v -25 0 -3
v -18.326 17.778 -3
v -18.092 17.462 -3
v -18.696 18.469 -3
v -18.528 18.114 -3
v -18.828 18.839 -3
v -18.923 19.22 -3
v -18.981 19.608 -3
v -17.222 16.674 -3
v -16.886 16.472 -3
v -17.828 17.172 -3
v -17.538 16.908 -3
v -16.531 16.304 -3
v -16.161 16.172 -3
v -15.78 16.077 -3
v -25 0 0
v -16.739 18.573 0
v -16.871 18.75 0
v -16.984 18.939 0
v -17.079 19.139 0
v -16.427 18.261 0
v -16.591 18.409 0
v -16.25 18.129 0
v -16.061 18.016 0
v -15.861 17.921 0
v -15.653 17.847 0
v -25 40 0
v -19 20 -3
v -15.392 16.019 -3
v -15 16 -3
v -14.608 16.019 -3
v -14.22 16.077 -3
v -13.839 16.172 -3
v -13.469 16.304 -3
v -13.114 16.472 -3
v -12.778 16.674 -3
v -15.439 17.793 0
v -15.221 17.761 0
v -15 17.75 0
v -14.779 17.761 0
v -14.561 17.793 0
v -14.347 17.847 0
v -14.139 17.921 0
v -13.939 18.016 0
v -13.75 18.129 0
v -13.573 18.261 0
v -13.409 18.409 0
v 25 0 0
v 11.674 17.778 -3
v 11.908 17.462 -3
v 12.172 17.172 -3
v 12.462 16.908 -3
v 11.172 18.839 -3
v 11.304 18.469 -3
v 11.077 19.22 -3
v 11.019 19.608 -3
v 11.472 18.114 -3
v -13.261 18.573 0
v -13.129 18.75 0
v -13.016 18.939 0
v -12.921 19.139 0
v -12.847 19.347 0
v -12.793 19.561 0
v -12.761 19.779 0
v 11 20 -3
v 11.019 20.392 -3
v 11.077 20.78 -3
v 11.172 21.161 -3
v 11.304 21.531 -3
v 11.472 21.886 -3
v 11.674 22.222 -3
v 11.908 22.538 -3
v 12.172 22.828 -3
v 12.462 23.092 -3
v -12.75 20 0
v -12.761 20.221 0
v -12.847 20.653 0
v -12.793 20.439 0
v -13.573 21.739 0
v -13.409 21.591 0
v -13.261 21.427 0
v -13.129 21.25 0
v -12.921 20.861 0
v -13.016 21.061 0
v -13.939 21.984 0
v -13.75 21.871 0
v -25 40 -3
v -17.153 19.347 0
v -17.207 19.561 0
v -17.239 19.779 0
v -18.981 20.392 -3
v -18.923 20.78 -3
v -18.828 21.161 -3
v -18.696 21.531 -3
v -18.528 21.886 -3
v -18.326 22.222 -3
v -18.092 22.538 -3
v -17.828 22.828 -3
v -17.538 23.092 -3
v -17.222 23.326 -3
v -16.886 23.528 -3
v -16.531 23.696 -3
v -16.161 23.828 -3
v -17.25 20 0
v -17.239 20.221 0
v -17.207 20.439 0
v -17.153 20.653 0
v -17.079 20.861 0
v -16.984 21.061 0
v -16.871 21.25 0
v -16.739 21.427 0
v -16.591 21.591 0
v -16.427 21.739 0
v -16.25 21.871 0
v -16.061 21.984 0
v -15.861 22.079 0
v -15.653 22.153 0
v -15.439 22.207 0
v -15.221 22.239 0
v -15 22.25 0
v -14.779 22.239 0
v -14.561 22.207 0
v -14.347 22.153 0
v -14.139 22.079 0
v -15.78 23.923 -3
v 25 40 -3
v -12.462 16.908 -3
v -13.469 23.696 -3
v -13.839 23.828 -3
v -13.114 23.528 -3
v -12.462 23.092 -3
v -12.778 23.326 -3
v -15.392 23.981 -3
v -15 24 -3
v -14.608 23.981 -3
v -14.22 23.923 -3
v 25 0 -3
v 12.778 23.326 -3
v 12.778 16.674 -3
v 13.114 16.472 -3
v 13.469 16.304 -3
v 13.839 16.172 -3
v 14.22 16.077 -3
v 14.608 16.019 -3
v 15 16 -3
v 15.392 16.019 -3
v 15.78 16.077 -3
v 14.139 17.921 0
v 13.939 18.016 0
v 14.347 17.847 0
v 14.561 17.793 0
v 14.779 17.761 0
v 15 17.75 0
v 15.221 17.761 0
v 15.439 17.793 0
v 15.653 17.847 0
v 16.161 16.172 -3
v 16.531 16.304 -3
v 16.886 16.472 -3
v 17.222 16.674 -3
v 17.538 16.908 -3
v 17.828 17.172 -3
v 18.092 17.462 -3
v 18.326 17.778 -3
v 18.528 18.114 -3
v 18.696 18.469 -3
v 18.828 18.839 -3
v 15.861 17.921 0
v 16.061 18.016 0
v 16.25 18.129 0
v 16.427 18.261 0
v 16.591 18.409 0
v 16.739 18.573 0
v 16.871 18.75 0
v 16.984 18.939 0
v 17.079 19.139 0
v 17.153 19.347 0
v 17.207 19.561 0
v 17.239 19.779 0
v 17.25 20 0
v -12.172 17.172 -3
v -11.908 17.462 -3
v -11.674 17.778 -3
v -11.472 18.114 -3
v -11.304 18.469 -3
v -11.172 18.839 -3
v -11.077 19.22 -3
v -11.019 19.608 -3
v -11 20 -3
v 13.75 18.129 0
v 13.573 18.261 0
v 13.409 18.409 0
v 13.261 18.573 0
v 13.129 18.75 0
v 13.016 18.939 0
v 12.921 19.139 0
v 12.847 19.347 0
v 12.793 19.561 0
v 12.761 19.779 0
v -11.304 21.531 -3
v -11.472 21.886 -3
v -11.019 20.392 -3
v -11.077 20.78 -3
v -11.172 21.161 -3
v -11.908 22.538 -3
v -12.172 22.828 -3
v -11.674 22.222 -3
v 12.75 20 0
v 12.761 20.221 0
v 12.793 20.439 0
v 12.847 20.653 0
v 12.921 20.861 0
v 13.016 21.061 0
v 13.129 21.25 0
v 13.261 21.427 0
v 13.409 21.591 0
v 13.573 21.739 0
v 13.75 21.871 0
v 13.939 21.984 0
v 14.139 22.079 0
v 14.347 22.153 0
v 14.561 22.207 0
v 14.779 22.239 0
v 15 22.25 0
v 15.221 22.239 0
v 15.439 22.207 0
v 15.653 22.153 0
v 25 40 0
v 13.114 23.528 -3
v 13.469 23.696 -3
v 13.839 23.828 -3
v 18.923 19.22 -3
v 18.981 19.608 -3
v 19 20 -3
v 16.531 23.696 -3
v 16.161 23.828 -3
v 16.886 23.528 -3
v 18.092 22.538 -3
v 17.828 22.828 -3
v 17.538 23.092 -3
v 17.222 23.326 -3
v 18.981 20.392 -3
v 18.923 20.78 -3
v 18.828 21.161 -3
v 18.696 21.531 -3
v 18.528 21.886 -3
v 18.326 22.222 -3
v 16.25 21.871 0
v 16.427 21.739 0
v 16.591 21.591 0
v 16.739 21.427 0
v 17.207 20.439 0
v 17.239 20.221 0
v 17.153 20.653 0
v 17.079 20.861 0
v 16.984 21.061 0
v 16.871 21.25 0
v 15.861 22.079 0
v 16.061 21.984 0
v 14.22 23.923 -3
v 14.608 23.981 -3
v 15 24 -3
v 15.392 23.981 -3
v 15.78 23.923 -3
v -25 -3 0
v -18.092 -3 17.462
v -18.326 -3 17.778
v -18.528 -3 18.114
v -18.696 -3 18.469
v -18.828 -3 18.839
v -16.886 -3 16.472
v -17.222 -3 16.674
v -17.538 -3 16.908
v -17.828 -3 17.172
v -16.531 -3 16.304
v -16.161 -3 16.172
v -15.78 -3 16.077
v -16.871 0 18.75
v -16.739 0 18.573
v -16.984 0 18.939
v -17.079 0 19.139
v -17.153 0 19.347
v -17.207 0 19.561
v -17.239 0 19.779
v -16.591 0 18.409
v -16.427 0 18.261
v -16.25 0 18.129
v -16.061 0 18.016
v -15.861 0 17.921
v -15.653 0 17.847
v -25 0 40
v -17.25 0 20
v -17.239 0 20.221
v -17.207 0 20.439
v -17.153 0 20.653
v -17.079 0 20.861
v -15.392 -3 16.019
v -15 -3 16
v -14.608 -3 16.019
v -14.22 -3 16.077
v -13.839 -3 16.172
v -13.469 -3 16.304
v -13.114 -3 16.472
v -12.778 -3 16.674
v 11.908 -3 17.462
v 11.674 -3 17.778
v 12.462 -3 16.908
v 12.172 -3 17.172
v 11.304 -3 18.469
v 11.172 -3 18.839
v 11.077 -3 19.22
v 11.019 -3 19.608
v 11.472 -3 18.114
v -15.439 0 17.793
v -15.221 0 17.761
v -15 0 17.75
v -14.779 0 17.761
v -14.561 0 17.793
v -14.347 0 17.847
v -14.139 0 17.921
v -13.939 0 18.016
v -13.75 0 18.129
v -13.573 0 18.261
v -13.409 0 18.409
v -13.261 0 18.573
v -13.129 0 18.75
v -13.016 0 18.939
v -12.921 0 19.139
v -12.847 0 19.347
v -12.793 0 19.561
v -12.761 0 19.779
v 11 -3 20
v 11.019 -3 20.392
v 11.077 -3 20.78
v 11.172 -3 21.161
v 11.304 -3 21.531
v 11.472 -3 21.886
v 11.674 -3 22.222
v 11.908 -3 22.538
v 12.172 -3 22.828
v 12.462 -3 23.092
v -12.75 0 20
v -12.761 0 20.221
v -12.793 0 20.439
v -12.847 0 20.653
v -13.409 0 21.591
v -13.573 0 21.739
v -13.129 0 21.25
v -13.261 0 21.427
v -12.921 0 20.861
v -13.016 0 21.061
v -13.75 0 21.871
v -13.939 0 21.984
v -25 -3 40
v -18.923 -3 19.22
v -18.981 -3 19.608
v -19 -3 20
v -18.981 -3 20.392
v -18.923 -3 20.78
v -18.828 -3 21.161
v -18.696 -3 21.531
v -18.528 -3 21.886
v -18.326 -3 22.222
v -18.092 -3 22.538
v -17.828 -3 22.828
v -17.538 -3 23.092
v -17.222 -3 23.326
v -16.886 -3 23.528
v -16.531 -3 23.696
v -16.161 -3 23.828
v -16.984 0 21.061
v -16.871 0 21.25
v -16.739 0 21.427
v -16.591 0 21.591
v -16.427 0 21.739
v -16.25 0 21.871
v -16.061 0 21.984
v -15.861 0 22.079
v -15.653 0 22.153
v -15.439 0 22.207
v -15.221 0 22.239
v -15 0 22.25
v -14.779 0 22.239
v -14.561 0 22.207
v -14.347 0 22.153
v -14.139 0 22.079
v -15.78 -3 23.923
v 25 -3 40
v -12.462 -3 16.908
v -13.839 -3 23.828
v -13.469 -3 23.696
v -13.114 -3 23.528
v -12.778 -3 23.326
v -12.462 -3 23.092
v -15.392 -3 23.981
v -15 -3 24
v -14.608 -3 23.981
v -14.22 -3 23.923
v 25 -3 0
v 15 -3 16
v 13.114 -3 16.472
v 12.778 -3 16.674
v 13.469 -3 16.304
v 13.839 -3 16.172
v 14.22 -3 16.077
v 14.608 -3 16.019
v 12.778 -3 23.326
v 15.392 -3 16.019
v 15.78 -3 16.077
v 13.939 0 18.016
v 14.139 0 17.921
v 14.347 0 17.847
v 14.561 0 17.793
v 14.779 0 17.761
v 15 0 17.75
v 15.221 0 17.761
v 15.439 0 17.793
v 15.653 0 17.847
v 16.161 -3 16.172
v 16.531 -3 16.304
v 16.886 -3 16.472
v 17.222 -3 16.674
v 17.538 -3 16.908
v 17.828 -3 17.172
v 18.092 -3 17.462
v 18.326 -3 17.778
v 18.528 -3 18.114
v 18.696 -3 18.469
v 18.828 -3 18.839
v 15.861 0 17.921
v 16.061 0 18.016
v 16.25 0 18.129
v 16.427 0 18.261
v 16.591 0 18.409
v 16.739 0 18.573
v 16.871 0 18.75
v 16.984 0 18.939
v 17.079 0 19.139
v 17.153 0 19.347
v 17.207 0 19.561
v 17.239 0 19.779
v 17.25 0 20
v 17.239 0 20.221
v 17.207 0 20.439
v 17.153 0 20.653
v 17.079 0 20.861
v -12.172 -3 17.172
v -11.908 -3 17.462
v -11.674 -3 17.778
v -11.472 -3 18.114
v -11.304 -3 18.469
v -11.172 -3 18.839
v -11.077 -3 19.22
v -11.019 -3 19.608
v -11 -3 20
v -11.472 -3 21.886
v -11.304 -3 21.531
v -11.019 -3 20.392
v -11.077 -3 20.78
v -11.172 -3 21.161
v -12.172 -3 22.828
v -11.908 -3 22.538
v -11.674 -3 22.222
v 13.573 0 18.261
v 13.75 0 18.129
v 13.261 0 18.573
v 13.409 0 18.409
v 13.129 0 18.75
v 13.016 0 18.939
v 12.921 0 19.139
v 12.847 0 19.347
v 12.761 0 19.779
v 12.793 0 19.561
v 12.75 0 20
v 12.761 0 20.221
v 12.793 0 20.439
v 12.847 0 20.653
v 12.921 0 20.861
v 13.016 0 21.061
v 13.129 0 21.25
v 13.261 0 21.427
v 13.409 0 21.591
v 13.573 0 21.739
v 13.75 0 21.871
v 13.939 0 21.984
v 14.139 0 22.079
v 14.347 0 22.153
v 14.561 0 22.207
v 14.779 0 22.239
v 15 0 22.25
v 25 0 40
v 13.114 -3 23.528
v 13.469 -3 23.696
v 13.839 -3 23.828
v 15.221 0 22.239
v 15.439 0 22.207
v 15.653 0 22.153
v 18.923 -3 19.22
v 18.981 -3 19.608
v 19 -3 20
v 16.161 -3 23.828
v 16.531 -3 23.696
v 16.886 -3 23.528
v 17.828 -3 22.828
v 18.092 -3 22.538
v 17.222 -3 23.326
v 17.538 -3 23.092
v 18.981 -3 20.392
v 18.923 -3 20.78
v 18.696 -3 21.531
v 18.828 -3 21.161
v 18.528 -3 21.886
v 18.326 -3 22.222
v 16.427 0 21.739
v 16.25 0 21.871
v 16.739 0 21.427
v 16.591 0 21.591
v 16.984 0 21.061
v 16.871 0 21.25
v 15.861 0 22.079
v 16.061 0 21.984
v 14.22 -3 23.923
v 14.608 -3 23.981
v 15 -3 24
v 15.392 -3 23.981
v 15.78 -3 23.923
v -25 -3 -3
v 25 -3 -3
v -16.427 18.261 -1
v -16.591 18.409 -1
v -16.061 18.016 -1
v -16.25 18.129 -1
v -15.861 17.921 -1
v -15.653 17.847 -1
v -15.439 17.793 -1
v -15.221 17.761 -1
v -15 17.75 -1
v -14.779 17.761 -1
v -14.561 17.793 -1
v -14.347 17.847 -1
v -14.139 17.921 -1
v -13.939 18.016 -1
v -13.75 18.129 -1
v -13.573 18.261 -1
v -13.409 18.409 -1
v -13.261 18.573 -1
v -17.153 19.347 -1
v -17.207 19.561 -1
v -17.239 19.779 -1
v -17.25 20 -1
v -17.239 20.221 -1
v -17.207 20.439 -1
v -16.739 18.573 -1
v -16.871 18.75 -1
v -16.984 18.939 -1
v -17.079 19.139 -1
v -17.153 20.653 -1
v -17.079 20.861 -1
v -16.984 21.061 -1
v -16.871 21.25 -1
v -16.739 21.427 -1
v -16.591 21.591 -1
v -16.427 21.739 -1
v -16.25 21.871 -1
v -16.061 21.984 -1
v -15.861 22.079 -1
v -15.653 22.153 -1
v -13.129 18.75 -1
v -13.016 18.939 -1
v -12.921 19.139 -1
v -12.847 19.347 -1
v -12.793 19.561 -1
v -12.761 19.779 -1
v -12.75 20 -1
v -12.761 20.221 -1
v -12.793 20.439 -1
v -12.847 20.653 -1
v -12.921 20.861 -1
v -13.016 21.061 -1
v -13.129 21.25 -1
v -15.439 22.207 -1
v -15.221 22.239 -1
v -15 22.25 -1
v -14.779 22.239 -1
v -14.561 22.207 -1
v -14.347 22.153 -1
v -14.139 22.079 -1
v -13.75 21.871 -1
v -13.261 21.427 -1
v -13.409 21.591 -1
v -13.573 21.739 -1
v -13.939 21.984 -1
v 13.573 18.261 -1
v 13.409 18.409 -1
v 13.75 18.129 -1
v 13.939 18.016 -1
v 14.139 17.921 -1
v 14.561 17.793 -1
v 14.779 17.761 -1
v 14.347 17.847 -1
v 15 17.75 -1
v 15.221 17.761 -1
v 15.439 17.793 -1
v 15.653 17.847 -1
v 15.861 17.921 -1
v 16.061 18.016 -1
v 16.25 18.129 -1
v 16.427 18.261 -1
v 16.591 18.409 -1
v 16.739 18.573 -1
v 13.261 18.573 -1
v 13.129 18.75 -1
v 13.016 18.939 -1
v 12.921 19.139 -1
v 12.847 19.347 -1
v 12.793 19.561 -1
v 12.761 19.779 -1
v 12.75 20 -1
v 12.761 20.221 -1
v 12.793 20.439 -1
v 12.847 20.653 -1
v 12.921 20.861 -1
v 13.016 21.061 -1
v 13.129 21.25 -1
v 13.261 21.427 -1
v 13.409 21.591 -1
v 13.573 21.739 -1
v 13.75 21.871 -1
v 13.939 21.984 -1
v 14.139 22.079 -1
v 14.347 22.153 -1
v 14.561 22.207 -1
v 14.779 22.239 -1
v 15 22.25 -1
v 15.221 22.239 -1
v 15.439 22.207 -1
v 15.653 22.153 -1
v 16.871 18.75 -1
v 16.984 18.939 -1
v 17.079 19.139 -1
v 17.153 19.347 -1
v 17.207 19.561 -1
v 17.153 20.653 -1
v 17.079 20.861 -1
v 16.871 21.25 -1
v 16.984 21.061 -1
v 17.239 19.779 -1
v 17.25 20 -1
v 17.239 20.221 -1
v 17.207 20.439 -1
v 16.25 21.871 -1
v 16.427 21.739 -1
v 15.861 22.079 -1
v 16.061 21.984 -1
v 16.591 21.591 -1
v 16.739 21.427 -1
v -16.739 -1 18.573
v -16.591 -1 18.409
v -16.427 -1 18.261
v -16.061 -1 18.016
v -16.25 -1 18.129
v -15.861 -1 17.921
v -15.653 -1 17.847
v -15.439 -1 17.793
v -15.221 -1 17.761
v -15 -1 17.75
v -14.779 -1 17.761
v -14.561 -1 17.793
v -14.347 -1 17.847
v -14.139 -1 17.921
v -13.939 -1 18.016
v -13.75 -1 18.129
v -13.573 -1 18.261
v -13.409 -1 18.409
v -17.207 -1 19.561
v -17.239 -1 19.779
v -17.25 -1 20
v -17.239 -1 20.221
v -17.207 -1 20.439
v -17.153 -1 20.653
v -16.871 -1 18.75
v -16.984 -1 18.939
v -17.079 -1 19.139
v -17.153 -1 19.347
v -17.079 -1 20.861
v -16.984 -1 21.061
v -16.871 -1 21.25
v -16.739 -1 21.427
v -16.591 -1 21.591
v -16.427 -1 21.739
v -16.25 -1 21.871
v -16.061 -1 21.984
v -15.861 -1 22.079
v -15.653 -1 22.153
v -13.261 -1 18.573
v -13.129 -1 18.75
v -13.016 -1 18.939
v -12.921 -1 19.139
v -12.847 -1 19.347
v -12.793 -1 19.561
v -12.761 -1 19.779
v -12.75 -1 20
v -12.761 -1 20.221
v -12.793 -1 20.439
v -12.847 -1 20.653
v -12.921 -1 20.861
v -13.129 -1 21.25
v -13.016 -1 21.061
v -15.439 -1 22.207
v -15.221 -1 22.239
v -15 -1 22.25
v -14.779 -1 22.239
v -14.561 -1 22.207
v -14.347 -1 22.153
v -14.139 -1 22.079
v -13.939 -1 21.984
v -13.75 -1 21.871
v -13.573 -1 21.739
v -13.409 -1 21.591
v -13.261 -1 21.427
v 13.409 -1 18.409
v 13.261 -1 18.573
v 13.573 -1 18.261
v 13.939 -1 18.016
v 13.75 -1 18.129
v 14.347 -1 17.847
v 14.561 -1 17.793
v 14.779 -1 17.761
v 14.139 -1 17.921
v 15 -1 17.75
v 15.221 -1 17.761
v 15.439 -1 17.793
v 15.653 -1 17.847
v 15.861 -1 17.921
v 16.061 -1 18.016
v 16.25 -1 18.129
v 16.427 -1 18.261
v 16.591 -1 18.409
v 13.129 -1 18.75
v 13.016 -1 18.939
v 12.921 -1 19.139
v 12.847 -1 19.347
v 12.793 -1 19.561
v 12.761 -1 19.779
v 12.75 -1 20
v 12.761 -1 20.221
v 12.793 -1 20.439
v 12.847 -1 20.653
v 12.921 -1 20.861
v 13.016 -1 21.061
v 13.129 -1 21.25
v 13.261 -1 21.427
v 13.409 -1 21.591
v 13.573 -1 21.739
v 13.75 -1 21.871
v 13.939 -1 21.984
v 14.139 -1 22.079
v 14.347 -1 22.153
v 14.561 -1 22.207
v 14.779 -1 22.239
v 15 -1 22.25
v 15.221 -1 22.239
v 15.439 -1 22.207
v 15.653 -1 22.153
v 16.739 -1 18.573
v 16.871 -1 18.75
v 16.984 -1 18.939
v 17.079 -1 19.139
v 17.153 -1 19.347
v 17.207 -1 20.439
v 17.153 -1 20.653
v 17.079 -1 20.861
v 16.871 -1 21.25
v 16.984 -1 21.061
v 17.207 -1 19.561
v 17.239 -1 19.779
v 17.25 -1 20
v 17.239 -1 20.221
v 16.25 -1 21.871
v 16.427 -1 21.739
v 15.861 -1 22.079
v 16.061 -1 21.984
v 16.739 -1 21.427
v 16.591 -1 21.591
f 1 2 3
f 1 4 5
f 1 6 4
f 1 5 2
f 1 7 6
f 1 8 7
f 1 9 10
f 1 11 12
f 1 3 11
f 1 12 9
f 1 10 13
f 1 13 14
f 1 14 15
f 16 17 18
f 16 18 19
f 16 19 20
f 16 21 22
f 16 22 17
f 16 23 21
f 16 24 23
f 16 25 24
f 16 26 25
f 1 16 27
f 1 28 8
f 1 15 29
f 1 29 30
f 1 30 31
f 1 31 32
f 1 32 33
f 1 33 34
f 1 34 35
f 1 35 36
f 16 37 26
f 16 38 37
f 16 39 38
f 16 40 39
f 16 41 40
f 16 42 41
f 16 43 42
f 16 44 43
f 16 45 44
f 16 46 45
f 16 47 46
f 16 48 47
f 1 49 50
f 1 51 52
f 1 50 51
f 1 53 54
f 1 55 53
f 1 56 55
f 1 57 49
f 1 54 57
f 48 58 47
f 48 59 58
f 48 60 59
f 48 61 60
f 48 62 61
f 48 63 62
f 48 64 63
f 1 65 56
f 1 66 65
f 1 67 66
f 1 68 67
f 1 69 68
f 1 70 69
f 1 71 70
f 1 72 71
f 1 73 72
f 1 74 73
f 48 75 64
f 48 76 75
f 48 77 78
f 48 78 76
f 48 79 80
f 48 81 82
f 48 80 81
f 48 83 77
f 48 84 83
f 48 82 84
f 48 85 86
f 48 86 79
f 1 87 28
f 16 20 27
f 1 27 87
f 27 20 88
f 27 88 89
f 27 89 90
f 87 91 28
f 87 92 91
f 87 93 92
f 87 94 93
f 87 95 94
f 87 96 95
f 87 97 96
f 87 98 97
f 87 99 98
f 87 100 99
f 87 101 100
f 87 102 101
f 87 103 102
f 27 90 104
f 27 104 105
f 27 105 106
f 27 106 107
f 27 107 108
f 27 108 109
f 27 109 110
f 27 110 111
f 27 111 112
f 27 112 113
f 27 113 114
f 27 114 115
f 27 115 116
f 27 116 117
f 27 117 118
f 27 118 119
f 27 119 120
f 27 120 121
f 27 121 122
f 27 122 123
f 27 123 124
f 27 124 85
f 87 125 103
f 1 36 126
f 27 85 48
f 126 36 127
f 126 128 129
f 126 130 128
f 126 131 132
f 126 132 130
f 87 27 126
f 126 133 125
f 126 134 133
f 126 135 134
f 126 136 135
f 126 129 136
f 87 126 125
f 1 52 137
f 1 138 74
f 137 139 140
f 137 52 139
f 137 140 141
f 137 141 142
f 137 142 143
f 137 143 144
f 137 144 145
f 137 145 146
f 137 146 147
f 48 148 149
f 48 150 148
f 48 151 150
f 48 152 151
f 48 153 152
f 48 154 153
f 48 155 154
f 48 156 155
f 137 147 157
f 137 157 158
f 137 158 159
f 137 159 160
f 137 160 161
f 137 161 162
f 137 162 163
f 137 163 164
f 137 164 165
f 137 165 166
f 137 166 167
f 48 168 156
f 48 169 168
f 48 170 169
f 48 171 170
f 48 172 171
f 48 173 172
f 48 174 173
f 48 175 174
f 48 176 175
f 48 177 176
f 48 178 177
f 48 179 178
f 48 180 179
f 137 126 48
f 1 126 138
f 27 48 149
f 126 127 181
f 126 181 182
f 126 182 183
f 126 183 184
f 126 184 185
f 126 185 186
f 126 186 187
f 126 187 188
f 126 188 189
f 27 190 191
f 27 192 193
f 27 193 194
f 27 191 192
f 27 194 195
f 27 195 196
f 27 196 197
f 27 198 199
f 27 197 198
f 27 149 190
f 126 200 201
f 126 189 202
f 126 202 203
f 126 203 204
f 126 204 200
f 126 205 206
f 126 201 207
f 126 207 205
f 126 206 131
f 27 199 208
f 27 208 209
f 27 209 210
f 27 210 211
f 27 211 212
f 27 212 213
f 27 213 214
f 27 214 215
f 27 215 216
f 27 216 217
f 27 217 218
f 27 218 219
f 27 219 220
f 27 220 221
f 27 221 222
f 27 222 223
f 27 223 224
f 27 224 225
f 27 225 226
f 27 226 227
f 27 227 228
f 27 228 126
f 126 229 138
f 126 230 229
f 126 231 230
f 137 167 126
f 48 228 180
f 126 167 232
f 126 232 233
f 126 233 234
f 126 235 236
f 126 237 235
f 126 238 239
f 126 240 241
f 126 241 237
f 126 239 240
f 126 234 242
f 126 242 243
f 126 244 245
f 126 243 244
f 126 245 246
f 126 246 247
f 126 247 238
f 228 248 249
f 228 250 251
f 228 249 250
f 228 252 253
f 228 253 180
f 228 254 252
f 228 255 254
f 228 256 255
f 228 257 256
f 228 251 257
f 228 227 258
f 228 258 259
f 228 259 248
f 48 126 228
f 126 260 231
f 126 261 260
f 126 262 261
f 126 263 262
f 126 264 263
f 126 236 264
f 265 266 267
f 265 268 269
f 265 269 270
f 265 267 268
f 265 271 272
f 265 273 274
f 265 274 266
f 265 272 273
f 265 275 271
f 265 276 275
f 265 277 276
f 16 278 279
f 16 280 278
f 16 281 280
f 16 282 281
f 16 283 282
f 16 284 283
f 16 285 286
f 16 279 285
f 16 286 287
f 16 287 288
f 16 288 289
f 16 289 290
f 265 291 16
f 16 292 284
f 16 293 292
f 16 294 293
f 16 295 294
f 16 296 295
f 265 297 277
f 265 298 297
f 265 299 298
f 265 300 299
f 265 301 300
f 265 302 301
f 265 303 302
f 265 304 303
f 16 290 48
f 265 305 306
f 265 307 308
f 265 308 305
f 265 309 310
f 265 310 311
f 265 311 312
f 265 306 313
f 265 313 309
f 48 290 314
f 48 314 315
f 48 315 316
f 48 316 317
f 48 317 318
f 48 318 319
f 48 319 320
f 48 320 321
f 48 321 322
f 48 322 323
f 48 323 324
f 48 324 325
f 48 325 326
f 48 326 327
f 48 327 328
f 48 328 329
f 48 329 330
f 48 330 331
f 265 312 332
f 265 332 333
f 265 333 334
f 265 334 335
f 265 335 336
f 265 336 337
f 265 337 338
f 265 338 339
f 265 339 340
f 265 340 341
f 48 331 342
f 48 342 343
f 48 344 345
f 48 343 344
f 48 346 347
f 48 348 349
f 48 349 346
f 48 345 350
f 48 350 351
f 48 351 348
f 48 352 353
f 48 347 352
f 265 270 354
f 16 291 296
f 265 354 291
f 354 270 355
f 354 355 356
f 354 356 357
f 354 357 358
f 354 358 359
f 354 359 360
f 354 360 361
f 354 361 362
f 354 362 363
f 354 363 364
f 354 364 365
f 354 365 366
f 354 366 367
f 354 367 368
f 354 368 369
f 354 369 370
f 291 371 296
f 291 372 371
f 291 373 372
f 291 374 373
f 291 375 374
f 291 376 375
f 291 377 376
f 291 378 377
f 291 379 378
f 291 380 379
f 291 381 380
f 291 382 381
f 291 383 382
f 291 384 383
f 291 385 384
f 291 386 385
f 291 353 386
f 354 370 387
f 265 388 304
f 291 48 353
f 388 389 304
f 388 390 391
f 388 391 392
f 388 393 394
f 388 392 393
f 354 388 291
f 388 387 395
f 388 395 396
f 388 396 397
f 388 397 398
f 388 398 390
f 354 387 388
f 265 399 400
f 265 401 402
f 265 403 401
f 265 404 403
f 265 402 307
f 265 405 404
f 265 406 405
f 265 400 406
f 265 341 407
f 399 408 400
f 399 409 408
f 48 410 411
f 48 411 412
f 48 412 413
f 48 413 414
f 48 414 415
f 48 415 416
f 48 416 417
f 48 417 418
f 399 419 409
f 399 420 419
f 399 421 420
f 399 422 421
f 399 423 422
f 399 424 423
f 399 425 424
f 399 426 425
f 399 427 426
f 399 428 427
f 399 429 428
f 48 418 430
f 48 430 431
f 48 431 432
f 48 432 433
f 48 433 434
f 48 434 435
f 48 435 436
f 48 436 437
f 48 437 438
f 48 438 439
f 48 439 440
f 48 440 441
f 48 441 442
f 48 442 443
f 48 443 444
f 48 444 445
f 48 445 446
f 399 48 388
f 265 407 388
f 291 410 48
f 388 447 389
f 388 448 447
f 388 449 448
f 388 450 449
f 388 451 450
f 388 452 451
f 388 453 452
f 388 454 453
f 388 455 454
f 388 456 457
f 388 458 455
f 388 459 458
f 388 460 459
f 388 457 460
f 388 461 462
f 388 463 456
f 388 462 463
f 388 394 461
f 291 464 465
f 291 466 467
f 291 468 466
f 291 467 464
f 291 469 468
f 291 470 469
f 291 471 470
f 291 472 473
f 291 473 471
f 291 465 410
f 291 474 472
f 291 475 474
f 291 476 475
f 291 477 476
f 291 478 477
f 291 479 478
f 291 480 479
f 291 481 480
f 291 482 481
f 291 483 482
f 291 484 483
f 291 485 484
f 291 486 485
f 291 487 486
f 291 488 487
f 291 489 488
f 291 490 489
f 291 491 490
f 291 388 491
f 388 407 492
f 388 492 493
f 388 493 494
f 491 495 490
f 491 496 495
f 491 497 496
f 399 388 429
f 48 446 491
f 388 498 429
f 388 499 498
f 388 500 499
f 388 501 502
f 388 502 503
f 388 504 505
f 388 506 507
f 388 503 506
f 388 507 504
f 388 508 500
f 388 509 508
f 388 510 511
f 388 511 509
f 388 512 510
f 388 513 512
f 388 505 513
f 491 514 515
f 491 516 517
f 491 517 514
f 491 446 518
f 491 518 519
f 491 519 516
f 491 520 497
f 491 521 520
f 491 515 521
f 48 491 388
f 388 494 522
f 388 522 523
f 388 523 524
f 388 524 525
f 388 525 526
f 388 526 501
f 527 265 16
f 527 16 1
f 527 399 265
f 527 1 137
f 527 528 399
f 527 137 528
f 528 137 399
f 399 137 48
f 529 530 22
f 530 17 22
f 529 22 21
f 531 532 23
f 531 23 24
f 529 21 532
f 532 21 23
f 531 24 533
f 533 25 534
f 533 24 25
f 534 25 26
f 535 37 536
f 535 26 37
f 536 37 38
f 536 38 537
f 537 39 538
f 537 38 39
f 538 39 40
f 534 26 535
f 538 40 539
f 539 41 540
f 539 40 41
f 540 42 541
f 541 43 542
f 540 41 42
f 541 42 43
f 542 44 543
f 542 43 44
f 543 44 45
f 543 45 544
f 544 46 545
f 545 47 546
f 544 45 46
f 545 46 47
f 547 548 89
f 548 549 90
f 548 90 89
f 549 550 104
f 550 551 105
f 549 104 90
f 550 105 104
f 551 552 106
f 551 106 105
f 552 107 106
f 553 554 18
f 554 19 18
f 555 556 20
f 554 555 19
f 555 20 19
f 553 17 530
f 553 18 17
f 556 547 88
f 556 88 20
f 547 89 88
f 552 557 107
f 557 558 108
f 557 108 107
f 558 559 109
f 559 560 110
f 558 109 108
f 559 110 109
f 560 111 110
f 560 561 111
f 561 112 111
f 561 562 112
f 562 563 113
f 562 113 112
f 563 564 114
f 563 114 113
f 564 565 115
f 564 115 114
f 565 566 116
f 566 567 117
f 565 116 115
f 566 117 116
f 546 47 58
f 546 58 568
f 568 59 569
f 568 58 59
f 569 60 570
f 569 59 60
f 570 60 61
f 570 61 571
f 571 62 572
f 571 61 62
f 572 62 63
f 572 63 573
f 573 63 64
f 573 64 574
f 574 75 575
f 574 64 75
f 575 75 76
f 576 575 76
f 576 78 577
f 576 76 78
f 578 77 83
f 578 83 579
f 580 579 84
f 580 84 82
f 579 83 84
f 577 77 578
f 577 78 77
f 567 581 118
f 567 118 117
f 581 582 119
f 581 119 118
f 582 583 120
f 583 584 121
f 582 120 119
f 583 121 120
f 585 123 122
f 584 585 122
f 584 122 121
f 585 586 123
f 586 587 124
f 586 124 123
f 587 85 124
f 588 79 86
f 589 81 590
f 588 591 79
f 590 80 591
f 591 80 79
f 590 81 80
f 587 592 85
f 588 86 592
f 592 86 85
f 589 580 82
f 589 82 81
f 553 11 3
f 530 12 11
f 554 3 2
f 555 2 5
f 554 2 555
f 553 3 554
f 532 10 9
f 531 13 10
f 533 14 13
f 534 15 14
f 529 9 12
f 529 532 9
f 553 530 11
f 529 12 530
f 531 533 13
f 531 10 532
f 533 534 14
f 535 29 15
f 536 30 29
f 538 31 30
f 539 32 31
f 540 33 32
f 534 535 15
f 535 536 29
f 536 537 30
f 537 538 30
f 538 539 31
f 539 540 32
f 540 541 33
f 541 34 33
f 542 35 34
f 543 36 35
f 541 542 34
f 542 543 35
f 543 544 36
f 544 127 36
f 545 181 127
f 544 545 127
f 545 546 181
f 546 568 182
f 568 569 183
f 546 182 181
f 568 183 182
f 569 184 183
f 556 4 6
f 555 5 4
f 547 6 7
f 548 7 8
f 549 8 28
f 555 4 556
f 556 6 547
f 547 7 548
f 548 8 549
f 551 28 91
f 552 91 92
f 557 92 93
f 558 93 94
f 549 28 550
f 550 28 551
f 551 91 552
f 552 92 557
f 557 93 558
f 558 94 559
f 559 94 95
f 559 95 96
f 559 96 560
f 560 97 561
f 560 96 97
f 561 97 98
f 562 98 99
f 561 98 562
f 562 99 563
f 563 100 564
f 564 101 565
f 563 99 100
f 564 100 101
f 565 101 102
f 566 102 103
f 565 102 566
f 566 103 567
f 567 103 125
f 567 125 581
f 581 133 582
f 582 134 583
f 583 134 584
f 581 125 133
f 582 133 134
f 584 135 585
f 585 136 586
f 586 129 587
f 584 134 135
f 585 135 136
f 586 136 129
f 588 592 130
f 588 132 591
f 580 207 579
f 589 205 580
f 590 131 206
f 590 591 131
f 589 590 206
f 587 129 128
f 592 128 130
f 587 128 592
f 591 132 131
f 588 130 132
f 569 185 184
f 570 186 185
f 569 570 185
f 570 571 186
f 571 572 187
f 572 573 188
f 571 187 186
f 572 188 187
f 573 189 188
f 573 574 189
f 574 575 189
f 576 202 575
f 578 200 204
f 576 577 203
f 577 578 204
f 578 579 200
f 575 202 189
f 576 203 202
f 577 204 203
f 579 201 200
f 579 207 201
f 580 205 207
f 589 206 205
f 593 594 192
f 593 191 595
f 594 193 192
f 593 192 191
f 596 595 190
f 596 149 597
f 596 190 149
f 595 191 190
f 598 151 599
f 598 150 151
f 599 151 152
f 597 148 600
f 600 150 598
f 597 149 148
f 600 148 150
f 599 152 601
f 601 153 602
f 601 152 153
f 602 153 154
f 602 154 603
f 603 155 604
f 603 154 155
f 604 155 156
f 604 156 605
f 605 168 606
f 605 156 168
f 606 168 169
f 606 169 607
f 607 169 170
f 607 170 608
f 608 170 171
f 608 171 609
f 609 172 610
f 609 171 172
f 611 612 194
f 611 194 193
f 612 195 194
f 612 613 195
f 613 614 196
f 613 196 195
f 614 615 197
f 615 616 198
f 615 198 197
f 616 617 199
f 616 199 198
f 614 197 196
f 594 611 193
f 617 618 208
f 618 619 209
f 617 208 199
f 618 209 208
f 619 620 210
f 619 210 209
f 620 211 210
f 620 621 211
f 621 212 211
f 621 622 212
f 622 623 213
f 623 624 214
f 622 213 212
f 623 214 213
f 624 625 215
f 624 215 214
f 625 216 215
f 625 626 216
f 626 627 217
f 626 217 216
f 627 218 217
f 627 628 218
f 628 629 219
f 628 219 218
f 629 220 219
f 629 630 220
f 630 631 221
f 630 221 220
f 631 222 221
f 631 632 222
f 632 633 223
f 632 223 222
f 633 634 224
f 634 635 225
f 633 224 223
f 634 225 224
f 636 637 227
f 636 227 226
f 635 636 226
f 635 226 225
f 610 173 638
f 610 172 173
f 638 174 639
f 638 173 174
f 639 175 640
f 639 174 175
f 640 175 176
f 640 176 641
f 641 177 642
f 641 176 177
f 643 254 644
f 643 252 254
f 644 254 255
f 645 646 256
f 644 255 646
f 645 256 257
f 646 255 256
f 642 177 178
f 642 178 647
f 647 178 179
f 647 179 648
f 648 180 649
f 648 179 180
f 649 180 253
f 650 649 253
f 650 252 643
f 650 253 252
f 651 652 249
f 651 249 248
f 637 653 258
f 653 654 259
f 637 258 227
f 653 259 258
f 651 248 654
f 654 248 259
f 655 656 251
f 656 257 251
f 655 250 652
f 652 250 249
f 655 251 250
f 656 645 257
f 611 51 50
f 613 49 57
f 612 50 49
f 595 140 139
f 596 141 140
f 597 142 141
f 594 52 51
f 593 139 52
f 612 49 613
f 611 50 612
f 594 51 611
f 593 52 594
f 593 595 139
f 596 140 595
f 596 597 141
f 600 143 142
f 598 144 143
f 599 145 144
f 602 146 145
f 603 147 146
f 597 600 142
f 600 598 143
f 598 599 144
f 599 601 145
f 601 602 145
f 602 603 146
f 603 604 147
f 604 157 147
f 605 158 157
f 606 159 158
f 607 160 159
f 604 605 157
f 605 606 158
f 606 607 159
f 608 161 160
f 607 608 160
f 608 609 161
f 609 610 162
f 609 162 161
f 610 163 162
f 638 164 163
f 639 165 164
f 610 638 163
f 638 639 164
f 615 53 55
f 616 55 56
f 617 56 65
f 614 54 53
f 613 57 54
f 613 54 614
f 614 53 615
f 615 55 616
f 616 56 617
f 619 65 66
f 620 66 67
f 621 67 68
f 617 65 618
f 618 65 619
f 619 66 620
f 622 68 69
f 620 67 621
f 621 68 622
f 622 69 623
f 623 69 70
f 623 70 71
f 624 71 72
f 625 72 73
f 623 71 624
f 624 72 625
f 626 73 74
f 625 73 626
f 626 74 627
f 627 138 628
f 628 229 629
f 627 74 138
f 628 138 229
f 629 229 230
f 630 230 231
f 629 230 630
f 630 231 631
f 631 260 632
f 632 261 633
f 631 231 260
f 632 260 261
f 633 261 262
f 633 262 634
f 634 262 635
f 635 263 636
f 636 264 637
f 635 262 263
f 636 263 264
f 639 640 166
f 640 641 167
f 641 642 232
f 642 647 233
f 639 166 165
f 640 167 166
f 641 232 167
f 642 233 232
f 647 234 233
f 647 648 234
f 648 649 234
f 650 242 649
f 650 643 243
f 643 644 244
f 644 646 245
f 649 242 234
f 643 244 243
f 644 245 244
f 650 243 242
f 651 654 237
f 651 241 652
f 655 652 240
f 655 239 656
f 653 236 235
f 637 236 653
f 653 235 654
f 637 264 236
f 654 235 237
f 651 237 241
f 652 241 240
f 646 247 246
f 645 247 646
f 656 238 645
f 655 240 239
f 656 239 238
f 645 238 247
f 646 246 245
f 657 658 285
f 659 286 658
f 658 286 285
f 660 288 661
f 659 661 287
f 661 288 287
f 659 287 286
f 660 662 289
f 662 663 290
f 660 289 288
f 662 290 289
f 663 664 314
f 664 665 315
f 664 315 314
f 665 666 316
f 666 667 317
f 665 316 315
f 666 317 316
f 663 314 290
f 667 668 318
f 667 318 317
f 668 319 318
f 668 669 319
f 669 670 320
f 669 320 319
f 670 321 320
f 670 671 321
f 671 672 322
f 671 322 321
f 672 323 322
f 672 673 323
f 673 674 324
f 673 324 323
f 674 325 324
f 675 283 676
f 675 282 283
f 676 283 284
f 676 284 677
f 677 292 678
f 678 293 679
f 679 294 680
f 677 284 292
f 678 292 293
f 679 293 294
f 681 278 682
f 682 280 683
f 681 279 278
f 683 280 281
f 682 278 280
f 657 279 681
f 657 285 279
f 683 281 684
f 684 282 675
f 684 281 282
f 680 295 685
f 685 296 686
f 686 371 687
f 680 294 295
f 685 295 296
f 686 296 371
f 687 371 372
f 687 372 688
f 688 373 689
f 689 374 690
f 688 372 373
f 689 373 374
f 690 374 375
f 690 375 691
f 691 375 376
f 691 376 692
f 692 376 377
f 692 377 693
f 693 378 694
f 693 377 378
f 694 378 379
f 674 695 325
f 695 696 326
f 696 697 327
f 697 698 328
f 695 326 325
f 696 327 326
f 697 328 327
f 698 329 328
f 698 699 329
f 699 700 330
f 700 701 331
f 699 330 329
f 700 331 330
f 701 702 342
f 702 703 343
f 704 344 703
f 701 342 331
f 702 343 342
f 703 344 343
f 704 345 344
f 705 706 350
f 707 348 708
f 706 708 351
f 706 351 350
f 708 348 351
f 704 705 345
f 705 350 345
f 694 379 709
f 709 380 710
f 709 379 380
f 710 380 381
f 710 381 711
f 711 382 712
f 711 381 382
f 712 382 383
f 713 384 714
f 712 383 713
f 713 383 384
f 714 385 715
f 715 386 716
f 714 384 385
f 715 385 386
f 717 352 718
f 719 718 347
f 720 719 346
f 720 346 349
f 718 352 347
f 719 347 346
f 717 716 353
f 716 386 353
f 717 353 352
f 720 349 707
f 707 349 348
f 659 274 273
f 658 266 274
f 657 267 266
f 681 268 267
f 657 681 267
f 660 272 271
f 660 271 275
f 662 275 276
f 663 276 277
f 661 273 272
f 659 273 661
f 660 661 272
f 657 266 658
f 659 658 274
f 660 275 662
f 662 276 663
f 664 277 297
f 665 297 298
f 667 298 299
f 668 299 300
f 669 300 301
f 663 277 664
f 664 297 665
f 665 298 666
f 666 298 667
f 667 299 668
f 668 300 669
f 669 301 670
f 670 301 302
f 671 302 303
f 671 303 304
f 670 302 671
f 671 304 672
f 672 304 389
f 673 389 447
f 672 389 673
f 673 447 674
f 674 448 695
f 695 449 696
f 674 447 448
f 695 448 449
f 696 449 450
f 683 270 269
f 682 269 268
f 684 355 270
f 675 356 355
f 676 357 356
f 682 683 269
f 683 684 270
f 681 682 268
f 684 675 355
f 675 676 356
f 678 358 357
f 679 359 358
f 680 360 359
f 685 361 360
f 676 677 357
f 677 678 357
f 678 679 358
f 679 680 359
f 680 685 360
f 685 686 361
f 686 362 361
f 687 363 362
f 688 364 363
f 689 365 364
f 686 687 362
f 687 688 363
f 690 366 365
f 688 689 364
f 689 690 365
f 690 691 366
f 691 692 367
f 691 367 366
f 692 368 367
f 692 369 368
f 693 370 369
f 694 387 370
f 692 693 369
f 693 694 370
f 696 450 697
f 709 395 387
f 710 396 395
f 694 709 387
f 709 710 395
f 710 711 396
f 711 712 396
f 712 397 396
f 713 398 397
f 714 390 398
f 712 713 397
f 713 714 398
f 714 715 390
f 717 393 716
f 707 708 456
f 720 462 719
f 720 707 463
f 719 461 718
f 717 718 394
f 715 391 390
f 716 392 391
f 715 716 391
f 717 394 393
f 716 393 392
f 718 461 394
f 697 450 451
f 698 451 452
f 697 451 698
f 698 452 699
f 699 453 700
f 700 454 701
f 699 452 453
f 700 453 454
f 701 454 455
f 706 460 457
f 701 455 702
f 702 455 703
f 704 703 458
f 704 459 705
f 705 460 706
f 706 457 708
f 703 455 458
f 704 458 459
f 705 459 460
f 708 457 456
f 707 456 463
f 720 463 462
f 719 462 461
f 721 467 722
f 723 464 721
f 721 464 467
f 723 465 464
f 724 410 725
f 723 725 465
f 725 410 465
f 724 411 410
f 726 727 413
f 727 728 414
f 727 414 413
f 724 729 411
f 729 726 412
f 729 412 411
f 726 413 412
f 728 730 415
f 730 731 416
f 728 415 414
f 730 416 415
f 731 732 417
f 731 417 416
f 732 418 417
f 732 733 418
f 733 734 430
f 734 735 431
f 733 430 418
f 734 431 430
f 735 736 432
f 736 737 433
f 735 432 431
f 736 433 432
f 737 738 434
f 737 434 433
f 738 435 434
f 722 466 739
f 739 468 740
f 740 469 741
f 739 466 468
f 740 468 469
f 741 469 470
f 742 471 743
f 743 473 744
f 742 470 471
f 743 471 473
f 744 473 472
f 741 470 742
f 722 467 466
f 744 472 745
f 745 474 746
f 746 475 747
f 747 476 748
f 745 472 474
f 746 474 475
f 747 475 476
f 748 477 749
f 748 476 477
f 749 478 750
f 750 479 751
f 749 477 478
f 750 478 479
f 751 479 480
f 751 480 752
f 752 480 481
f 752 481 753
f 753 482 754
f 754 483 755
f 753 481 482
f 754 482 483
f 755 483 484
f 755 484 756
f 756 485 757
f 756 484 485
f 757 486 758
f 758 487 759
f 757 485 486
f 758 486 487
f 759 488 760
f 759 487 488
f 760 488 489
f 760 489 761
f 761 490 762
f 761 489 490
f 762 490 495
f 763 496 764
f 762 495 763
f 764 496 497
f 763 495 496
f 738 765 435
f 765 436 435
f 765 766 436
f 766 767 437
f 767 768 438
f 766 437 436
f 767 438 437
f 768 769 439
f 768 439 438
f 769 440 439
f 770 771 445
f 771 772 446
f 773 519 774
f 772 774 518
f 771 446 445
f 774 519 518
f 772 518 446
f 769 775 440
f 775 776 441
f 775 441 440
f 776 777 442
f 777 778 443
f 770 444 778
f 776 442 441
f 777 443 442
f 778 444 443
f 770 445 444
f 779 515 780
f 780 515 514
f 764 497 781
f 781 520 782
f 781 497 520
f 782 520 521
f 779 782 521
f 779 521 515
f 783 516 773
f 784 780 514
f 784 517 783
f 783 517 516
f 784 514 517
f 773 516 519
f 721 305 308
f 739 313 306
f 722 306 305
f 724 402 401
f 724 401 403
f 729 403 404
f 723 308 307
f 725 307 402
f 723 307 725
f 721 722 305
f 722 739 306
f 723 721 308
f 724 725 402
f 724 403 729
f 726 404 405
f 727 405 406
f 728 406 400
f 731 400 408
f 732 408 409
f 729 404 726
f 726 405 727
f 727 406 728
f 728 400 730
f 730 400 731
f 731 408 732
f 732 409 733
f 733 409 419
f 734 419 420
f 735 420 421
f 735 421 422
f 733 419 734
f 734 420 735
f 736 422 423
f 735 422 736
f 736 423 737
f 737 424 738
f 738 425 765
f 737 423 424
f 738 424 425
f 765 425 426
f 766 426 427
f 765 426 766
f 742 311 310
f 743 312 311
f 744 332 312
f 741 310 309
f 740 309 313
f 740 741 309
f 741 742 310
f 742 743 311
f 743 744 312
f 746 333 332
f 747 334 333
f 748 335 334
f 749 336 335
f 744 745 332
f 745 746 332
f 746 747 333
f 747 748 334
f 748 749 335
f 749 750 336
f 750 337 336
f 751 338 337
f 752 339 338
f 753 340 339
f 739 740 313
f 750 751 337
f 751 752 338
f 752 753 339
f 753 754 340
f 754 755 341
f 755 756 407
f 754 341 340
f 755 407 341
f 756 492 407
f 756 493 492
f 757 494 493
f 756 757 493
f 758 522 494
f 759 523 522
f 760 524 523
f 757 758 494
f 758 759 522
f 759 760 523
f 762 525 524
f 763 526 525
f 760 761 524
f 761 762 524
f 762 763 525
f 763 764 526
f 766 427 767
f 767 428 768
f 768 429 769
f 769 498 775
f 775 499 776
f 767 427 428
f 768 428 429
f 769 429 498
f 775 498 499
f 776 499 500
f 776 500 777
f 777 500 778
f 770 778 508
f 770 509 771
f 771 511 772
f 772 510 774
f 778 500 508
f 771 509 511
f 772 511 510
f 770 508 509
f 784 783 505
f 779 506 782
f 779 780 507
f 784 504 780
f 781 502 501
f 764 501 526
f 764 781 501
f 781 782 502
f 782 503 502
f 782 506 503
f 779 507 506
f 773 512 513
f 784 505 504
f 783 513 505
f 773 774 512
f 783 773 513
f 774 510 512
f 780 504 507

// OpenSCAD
$fn = 64;

width = 50;
depth = 40;
height = 40;
thickness = 3;

through_diameter = 4.5;
countersink_diameter = 8;
countersink_depth = 2;
edge_offset = 10;

hole_x = [-width / 2 + edge_offset, width / 2 - edge_offset];

difference() {
    union() {
        // Horizontal flange: extends in +Y, with its inner face at Z=0
        translate([-width / 2, 0, -thickness])
            cube([width, depth, thickness]);

        // Vertical flange: extends in +Z, with its inner face at Y=0
        translate([-width / 2, -thickness, 0])
            cube([width, thickness, height]);

        // Material joining the flanges at the inner corner
        translate([-width / 2, -thickness, -thickness])
            cube([width, thickness, thickness]);
    }

    // Horizontal flange holes; countersinks face outward (-Z)
    for (x = hole_x) {
        translate([x, depth / 2, -thickness - 0.1])
            cylinder(h = thickness + 0.2, d = through_diameter);

        translate([x, depth / 2, -thickness])
            cylinder(h = countersink_depth,
                     d1 = countersink_diameter,
                     d2 = through_diameter);
    }

    // Vertical flange holes; countersinks face outward (-Y)
    for (x = hole_x) {
        translate([x, -thickness - 0.1, height / 2])
            rotate([-90, 0, 0])
                cylinder(h = thickness + 0.2, d = through_diameter);

        translate([x, -thickness, height / 2])
            rotate([-90, 0, 0])
                cylinder(h = countersink_depth,
                         d1 = countersink_diameter,
                         d2 = through_diameter);
    }
}
